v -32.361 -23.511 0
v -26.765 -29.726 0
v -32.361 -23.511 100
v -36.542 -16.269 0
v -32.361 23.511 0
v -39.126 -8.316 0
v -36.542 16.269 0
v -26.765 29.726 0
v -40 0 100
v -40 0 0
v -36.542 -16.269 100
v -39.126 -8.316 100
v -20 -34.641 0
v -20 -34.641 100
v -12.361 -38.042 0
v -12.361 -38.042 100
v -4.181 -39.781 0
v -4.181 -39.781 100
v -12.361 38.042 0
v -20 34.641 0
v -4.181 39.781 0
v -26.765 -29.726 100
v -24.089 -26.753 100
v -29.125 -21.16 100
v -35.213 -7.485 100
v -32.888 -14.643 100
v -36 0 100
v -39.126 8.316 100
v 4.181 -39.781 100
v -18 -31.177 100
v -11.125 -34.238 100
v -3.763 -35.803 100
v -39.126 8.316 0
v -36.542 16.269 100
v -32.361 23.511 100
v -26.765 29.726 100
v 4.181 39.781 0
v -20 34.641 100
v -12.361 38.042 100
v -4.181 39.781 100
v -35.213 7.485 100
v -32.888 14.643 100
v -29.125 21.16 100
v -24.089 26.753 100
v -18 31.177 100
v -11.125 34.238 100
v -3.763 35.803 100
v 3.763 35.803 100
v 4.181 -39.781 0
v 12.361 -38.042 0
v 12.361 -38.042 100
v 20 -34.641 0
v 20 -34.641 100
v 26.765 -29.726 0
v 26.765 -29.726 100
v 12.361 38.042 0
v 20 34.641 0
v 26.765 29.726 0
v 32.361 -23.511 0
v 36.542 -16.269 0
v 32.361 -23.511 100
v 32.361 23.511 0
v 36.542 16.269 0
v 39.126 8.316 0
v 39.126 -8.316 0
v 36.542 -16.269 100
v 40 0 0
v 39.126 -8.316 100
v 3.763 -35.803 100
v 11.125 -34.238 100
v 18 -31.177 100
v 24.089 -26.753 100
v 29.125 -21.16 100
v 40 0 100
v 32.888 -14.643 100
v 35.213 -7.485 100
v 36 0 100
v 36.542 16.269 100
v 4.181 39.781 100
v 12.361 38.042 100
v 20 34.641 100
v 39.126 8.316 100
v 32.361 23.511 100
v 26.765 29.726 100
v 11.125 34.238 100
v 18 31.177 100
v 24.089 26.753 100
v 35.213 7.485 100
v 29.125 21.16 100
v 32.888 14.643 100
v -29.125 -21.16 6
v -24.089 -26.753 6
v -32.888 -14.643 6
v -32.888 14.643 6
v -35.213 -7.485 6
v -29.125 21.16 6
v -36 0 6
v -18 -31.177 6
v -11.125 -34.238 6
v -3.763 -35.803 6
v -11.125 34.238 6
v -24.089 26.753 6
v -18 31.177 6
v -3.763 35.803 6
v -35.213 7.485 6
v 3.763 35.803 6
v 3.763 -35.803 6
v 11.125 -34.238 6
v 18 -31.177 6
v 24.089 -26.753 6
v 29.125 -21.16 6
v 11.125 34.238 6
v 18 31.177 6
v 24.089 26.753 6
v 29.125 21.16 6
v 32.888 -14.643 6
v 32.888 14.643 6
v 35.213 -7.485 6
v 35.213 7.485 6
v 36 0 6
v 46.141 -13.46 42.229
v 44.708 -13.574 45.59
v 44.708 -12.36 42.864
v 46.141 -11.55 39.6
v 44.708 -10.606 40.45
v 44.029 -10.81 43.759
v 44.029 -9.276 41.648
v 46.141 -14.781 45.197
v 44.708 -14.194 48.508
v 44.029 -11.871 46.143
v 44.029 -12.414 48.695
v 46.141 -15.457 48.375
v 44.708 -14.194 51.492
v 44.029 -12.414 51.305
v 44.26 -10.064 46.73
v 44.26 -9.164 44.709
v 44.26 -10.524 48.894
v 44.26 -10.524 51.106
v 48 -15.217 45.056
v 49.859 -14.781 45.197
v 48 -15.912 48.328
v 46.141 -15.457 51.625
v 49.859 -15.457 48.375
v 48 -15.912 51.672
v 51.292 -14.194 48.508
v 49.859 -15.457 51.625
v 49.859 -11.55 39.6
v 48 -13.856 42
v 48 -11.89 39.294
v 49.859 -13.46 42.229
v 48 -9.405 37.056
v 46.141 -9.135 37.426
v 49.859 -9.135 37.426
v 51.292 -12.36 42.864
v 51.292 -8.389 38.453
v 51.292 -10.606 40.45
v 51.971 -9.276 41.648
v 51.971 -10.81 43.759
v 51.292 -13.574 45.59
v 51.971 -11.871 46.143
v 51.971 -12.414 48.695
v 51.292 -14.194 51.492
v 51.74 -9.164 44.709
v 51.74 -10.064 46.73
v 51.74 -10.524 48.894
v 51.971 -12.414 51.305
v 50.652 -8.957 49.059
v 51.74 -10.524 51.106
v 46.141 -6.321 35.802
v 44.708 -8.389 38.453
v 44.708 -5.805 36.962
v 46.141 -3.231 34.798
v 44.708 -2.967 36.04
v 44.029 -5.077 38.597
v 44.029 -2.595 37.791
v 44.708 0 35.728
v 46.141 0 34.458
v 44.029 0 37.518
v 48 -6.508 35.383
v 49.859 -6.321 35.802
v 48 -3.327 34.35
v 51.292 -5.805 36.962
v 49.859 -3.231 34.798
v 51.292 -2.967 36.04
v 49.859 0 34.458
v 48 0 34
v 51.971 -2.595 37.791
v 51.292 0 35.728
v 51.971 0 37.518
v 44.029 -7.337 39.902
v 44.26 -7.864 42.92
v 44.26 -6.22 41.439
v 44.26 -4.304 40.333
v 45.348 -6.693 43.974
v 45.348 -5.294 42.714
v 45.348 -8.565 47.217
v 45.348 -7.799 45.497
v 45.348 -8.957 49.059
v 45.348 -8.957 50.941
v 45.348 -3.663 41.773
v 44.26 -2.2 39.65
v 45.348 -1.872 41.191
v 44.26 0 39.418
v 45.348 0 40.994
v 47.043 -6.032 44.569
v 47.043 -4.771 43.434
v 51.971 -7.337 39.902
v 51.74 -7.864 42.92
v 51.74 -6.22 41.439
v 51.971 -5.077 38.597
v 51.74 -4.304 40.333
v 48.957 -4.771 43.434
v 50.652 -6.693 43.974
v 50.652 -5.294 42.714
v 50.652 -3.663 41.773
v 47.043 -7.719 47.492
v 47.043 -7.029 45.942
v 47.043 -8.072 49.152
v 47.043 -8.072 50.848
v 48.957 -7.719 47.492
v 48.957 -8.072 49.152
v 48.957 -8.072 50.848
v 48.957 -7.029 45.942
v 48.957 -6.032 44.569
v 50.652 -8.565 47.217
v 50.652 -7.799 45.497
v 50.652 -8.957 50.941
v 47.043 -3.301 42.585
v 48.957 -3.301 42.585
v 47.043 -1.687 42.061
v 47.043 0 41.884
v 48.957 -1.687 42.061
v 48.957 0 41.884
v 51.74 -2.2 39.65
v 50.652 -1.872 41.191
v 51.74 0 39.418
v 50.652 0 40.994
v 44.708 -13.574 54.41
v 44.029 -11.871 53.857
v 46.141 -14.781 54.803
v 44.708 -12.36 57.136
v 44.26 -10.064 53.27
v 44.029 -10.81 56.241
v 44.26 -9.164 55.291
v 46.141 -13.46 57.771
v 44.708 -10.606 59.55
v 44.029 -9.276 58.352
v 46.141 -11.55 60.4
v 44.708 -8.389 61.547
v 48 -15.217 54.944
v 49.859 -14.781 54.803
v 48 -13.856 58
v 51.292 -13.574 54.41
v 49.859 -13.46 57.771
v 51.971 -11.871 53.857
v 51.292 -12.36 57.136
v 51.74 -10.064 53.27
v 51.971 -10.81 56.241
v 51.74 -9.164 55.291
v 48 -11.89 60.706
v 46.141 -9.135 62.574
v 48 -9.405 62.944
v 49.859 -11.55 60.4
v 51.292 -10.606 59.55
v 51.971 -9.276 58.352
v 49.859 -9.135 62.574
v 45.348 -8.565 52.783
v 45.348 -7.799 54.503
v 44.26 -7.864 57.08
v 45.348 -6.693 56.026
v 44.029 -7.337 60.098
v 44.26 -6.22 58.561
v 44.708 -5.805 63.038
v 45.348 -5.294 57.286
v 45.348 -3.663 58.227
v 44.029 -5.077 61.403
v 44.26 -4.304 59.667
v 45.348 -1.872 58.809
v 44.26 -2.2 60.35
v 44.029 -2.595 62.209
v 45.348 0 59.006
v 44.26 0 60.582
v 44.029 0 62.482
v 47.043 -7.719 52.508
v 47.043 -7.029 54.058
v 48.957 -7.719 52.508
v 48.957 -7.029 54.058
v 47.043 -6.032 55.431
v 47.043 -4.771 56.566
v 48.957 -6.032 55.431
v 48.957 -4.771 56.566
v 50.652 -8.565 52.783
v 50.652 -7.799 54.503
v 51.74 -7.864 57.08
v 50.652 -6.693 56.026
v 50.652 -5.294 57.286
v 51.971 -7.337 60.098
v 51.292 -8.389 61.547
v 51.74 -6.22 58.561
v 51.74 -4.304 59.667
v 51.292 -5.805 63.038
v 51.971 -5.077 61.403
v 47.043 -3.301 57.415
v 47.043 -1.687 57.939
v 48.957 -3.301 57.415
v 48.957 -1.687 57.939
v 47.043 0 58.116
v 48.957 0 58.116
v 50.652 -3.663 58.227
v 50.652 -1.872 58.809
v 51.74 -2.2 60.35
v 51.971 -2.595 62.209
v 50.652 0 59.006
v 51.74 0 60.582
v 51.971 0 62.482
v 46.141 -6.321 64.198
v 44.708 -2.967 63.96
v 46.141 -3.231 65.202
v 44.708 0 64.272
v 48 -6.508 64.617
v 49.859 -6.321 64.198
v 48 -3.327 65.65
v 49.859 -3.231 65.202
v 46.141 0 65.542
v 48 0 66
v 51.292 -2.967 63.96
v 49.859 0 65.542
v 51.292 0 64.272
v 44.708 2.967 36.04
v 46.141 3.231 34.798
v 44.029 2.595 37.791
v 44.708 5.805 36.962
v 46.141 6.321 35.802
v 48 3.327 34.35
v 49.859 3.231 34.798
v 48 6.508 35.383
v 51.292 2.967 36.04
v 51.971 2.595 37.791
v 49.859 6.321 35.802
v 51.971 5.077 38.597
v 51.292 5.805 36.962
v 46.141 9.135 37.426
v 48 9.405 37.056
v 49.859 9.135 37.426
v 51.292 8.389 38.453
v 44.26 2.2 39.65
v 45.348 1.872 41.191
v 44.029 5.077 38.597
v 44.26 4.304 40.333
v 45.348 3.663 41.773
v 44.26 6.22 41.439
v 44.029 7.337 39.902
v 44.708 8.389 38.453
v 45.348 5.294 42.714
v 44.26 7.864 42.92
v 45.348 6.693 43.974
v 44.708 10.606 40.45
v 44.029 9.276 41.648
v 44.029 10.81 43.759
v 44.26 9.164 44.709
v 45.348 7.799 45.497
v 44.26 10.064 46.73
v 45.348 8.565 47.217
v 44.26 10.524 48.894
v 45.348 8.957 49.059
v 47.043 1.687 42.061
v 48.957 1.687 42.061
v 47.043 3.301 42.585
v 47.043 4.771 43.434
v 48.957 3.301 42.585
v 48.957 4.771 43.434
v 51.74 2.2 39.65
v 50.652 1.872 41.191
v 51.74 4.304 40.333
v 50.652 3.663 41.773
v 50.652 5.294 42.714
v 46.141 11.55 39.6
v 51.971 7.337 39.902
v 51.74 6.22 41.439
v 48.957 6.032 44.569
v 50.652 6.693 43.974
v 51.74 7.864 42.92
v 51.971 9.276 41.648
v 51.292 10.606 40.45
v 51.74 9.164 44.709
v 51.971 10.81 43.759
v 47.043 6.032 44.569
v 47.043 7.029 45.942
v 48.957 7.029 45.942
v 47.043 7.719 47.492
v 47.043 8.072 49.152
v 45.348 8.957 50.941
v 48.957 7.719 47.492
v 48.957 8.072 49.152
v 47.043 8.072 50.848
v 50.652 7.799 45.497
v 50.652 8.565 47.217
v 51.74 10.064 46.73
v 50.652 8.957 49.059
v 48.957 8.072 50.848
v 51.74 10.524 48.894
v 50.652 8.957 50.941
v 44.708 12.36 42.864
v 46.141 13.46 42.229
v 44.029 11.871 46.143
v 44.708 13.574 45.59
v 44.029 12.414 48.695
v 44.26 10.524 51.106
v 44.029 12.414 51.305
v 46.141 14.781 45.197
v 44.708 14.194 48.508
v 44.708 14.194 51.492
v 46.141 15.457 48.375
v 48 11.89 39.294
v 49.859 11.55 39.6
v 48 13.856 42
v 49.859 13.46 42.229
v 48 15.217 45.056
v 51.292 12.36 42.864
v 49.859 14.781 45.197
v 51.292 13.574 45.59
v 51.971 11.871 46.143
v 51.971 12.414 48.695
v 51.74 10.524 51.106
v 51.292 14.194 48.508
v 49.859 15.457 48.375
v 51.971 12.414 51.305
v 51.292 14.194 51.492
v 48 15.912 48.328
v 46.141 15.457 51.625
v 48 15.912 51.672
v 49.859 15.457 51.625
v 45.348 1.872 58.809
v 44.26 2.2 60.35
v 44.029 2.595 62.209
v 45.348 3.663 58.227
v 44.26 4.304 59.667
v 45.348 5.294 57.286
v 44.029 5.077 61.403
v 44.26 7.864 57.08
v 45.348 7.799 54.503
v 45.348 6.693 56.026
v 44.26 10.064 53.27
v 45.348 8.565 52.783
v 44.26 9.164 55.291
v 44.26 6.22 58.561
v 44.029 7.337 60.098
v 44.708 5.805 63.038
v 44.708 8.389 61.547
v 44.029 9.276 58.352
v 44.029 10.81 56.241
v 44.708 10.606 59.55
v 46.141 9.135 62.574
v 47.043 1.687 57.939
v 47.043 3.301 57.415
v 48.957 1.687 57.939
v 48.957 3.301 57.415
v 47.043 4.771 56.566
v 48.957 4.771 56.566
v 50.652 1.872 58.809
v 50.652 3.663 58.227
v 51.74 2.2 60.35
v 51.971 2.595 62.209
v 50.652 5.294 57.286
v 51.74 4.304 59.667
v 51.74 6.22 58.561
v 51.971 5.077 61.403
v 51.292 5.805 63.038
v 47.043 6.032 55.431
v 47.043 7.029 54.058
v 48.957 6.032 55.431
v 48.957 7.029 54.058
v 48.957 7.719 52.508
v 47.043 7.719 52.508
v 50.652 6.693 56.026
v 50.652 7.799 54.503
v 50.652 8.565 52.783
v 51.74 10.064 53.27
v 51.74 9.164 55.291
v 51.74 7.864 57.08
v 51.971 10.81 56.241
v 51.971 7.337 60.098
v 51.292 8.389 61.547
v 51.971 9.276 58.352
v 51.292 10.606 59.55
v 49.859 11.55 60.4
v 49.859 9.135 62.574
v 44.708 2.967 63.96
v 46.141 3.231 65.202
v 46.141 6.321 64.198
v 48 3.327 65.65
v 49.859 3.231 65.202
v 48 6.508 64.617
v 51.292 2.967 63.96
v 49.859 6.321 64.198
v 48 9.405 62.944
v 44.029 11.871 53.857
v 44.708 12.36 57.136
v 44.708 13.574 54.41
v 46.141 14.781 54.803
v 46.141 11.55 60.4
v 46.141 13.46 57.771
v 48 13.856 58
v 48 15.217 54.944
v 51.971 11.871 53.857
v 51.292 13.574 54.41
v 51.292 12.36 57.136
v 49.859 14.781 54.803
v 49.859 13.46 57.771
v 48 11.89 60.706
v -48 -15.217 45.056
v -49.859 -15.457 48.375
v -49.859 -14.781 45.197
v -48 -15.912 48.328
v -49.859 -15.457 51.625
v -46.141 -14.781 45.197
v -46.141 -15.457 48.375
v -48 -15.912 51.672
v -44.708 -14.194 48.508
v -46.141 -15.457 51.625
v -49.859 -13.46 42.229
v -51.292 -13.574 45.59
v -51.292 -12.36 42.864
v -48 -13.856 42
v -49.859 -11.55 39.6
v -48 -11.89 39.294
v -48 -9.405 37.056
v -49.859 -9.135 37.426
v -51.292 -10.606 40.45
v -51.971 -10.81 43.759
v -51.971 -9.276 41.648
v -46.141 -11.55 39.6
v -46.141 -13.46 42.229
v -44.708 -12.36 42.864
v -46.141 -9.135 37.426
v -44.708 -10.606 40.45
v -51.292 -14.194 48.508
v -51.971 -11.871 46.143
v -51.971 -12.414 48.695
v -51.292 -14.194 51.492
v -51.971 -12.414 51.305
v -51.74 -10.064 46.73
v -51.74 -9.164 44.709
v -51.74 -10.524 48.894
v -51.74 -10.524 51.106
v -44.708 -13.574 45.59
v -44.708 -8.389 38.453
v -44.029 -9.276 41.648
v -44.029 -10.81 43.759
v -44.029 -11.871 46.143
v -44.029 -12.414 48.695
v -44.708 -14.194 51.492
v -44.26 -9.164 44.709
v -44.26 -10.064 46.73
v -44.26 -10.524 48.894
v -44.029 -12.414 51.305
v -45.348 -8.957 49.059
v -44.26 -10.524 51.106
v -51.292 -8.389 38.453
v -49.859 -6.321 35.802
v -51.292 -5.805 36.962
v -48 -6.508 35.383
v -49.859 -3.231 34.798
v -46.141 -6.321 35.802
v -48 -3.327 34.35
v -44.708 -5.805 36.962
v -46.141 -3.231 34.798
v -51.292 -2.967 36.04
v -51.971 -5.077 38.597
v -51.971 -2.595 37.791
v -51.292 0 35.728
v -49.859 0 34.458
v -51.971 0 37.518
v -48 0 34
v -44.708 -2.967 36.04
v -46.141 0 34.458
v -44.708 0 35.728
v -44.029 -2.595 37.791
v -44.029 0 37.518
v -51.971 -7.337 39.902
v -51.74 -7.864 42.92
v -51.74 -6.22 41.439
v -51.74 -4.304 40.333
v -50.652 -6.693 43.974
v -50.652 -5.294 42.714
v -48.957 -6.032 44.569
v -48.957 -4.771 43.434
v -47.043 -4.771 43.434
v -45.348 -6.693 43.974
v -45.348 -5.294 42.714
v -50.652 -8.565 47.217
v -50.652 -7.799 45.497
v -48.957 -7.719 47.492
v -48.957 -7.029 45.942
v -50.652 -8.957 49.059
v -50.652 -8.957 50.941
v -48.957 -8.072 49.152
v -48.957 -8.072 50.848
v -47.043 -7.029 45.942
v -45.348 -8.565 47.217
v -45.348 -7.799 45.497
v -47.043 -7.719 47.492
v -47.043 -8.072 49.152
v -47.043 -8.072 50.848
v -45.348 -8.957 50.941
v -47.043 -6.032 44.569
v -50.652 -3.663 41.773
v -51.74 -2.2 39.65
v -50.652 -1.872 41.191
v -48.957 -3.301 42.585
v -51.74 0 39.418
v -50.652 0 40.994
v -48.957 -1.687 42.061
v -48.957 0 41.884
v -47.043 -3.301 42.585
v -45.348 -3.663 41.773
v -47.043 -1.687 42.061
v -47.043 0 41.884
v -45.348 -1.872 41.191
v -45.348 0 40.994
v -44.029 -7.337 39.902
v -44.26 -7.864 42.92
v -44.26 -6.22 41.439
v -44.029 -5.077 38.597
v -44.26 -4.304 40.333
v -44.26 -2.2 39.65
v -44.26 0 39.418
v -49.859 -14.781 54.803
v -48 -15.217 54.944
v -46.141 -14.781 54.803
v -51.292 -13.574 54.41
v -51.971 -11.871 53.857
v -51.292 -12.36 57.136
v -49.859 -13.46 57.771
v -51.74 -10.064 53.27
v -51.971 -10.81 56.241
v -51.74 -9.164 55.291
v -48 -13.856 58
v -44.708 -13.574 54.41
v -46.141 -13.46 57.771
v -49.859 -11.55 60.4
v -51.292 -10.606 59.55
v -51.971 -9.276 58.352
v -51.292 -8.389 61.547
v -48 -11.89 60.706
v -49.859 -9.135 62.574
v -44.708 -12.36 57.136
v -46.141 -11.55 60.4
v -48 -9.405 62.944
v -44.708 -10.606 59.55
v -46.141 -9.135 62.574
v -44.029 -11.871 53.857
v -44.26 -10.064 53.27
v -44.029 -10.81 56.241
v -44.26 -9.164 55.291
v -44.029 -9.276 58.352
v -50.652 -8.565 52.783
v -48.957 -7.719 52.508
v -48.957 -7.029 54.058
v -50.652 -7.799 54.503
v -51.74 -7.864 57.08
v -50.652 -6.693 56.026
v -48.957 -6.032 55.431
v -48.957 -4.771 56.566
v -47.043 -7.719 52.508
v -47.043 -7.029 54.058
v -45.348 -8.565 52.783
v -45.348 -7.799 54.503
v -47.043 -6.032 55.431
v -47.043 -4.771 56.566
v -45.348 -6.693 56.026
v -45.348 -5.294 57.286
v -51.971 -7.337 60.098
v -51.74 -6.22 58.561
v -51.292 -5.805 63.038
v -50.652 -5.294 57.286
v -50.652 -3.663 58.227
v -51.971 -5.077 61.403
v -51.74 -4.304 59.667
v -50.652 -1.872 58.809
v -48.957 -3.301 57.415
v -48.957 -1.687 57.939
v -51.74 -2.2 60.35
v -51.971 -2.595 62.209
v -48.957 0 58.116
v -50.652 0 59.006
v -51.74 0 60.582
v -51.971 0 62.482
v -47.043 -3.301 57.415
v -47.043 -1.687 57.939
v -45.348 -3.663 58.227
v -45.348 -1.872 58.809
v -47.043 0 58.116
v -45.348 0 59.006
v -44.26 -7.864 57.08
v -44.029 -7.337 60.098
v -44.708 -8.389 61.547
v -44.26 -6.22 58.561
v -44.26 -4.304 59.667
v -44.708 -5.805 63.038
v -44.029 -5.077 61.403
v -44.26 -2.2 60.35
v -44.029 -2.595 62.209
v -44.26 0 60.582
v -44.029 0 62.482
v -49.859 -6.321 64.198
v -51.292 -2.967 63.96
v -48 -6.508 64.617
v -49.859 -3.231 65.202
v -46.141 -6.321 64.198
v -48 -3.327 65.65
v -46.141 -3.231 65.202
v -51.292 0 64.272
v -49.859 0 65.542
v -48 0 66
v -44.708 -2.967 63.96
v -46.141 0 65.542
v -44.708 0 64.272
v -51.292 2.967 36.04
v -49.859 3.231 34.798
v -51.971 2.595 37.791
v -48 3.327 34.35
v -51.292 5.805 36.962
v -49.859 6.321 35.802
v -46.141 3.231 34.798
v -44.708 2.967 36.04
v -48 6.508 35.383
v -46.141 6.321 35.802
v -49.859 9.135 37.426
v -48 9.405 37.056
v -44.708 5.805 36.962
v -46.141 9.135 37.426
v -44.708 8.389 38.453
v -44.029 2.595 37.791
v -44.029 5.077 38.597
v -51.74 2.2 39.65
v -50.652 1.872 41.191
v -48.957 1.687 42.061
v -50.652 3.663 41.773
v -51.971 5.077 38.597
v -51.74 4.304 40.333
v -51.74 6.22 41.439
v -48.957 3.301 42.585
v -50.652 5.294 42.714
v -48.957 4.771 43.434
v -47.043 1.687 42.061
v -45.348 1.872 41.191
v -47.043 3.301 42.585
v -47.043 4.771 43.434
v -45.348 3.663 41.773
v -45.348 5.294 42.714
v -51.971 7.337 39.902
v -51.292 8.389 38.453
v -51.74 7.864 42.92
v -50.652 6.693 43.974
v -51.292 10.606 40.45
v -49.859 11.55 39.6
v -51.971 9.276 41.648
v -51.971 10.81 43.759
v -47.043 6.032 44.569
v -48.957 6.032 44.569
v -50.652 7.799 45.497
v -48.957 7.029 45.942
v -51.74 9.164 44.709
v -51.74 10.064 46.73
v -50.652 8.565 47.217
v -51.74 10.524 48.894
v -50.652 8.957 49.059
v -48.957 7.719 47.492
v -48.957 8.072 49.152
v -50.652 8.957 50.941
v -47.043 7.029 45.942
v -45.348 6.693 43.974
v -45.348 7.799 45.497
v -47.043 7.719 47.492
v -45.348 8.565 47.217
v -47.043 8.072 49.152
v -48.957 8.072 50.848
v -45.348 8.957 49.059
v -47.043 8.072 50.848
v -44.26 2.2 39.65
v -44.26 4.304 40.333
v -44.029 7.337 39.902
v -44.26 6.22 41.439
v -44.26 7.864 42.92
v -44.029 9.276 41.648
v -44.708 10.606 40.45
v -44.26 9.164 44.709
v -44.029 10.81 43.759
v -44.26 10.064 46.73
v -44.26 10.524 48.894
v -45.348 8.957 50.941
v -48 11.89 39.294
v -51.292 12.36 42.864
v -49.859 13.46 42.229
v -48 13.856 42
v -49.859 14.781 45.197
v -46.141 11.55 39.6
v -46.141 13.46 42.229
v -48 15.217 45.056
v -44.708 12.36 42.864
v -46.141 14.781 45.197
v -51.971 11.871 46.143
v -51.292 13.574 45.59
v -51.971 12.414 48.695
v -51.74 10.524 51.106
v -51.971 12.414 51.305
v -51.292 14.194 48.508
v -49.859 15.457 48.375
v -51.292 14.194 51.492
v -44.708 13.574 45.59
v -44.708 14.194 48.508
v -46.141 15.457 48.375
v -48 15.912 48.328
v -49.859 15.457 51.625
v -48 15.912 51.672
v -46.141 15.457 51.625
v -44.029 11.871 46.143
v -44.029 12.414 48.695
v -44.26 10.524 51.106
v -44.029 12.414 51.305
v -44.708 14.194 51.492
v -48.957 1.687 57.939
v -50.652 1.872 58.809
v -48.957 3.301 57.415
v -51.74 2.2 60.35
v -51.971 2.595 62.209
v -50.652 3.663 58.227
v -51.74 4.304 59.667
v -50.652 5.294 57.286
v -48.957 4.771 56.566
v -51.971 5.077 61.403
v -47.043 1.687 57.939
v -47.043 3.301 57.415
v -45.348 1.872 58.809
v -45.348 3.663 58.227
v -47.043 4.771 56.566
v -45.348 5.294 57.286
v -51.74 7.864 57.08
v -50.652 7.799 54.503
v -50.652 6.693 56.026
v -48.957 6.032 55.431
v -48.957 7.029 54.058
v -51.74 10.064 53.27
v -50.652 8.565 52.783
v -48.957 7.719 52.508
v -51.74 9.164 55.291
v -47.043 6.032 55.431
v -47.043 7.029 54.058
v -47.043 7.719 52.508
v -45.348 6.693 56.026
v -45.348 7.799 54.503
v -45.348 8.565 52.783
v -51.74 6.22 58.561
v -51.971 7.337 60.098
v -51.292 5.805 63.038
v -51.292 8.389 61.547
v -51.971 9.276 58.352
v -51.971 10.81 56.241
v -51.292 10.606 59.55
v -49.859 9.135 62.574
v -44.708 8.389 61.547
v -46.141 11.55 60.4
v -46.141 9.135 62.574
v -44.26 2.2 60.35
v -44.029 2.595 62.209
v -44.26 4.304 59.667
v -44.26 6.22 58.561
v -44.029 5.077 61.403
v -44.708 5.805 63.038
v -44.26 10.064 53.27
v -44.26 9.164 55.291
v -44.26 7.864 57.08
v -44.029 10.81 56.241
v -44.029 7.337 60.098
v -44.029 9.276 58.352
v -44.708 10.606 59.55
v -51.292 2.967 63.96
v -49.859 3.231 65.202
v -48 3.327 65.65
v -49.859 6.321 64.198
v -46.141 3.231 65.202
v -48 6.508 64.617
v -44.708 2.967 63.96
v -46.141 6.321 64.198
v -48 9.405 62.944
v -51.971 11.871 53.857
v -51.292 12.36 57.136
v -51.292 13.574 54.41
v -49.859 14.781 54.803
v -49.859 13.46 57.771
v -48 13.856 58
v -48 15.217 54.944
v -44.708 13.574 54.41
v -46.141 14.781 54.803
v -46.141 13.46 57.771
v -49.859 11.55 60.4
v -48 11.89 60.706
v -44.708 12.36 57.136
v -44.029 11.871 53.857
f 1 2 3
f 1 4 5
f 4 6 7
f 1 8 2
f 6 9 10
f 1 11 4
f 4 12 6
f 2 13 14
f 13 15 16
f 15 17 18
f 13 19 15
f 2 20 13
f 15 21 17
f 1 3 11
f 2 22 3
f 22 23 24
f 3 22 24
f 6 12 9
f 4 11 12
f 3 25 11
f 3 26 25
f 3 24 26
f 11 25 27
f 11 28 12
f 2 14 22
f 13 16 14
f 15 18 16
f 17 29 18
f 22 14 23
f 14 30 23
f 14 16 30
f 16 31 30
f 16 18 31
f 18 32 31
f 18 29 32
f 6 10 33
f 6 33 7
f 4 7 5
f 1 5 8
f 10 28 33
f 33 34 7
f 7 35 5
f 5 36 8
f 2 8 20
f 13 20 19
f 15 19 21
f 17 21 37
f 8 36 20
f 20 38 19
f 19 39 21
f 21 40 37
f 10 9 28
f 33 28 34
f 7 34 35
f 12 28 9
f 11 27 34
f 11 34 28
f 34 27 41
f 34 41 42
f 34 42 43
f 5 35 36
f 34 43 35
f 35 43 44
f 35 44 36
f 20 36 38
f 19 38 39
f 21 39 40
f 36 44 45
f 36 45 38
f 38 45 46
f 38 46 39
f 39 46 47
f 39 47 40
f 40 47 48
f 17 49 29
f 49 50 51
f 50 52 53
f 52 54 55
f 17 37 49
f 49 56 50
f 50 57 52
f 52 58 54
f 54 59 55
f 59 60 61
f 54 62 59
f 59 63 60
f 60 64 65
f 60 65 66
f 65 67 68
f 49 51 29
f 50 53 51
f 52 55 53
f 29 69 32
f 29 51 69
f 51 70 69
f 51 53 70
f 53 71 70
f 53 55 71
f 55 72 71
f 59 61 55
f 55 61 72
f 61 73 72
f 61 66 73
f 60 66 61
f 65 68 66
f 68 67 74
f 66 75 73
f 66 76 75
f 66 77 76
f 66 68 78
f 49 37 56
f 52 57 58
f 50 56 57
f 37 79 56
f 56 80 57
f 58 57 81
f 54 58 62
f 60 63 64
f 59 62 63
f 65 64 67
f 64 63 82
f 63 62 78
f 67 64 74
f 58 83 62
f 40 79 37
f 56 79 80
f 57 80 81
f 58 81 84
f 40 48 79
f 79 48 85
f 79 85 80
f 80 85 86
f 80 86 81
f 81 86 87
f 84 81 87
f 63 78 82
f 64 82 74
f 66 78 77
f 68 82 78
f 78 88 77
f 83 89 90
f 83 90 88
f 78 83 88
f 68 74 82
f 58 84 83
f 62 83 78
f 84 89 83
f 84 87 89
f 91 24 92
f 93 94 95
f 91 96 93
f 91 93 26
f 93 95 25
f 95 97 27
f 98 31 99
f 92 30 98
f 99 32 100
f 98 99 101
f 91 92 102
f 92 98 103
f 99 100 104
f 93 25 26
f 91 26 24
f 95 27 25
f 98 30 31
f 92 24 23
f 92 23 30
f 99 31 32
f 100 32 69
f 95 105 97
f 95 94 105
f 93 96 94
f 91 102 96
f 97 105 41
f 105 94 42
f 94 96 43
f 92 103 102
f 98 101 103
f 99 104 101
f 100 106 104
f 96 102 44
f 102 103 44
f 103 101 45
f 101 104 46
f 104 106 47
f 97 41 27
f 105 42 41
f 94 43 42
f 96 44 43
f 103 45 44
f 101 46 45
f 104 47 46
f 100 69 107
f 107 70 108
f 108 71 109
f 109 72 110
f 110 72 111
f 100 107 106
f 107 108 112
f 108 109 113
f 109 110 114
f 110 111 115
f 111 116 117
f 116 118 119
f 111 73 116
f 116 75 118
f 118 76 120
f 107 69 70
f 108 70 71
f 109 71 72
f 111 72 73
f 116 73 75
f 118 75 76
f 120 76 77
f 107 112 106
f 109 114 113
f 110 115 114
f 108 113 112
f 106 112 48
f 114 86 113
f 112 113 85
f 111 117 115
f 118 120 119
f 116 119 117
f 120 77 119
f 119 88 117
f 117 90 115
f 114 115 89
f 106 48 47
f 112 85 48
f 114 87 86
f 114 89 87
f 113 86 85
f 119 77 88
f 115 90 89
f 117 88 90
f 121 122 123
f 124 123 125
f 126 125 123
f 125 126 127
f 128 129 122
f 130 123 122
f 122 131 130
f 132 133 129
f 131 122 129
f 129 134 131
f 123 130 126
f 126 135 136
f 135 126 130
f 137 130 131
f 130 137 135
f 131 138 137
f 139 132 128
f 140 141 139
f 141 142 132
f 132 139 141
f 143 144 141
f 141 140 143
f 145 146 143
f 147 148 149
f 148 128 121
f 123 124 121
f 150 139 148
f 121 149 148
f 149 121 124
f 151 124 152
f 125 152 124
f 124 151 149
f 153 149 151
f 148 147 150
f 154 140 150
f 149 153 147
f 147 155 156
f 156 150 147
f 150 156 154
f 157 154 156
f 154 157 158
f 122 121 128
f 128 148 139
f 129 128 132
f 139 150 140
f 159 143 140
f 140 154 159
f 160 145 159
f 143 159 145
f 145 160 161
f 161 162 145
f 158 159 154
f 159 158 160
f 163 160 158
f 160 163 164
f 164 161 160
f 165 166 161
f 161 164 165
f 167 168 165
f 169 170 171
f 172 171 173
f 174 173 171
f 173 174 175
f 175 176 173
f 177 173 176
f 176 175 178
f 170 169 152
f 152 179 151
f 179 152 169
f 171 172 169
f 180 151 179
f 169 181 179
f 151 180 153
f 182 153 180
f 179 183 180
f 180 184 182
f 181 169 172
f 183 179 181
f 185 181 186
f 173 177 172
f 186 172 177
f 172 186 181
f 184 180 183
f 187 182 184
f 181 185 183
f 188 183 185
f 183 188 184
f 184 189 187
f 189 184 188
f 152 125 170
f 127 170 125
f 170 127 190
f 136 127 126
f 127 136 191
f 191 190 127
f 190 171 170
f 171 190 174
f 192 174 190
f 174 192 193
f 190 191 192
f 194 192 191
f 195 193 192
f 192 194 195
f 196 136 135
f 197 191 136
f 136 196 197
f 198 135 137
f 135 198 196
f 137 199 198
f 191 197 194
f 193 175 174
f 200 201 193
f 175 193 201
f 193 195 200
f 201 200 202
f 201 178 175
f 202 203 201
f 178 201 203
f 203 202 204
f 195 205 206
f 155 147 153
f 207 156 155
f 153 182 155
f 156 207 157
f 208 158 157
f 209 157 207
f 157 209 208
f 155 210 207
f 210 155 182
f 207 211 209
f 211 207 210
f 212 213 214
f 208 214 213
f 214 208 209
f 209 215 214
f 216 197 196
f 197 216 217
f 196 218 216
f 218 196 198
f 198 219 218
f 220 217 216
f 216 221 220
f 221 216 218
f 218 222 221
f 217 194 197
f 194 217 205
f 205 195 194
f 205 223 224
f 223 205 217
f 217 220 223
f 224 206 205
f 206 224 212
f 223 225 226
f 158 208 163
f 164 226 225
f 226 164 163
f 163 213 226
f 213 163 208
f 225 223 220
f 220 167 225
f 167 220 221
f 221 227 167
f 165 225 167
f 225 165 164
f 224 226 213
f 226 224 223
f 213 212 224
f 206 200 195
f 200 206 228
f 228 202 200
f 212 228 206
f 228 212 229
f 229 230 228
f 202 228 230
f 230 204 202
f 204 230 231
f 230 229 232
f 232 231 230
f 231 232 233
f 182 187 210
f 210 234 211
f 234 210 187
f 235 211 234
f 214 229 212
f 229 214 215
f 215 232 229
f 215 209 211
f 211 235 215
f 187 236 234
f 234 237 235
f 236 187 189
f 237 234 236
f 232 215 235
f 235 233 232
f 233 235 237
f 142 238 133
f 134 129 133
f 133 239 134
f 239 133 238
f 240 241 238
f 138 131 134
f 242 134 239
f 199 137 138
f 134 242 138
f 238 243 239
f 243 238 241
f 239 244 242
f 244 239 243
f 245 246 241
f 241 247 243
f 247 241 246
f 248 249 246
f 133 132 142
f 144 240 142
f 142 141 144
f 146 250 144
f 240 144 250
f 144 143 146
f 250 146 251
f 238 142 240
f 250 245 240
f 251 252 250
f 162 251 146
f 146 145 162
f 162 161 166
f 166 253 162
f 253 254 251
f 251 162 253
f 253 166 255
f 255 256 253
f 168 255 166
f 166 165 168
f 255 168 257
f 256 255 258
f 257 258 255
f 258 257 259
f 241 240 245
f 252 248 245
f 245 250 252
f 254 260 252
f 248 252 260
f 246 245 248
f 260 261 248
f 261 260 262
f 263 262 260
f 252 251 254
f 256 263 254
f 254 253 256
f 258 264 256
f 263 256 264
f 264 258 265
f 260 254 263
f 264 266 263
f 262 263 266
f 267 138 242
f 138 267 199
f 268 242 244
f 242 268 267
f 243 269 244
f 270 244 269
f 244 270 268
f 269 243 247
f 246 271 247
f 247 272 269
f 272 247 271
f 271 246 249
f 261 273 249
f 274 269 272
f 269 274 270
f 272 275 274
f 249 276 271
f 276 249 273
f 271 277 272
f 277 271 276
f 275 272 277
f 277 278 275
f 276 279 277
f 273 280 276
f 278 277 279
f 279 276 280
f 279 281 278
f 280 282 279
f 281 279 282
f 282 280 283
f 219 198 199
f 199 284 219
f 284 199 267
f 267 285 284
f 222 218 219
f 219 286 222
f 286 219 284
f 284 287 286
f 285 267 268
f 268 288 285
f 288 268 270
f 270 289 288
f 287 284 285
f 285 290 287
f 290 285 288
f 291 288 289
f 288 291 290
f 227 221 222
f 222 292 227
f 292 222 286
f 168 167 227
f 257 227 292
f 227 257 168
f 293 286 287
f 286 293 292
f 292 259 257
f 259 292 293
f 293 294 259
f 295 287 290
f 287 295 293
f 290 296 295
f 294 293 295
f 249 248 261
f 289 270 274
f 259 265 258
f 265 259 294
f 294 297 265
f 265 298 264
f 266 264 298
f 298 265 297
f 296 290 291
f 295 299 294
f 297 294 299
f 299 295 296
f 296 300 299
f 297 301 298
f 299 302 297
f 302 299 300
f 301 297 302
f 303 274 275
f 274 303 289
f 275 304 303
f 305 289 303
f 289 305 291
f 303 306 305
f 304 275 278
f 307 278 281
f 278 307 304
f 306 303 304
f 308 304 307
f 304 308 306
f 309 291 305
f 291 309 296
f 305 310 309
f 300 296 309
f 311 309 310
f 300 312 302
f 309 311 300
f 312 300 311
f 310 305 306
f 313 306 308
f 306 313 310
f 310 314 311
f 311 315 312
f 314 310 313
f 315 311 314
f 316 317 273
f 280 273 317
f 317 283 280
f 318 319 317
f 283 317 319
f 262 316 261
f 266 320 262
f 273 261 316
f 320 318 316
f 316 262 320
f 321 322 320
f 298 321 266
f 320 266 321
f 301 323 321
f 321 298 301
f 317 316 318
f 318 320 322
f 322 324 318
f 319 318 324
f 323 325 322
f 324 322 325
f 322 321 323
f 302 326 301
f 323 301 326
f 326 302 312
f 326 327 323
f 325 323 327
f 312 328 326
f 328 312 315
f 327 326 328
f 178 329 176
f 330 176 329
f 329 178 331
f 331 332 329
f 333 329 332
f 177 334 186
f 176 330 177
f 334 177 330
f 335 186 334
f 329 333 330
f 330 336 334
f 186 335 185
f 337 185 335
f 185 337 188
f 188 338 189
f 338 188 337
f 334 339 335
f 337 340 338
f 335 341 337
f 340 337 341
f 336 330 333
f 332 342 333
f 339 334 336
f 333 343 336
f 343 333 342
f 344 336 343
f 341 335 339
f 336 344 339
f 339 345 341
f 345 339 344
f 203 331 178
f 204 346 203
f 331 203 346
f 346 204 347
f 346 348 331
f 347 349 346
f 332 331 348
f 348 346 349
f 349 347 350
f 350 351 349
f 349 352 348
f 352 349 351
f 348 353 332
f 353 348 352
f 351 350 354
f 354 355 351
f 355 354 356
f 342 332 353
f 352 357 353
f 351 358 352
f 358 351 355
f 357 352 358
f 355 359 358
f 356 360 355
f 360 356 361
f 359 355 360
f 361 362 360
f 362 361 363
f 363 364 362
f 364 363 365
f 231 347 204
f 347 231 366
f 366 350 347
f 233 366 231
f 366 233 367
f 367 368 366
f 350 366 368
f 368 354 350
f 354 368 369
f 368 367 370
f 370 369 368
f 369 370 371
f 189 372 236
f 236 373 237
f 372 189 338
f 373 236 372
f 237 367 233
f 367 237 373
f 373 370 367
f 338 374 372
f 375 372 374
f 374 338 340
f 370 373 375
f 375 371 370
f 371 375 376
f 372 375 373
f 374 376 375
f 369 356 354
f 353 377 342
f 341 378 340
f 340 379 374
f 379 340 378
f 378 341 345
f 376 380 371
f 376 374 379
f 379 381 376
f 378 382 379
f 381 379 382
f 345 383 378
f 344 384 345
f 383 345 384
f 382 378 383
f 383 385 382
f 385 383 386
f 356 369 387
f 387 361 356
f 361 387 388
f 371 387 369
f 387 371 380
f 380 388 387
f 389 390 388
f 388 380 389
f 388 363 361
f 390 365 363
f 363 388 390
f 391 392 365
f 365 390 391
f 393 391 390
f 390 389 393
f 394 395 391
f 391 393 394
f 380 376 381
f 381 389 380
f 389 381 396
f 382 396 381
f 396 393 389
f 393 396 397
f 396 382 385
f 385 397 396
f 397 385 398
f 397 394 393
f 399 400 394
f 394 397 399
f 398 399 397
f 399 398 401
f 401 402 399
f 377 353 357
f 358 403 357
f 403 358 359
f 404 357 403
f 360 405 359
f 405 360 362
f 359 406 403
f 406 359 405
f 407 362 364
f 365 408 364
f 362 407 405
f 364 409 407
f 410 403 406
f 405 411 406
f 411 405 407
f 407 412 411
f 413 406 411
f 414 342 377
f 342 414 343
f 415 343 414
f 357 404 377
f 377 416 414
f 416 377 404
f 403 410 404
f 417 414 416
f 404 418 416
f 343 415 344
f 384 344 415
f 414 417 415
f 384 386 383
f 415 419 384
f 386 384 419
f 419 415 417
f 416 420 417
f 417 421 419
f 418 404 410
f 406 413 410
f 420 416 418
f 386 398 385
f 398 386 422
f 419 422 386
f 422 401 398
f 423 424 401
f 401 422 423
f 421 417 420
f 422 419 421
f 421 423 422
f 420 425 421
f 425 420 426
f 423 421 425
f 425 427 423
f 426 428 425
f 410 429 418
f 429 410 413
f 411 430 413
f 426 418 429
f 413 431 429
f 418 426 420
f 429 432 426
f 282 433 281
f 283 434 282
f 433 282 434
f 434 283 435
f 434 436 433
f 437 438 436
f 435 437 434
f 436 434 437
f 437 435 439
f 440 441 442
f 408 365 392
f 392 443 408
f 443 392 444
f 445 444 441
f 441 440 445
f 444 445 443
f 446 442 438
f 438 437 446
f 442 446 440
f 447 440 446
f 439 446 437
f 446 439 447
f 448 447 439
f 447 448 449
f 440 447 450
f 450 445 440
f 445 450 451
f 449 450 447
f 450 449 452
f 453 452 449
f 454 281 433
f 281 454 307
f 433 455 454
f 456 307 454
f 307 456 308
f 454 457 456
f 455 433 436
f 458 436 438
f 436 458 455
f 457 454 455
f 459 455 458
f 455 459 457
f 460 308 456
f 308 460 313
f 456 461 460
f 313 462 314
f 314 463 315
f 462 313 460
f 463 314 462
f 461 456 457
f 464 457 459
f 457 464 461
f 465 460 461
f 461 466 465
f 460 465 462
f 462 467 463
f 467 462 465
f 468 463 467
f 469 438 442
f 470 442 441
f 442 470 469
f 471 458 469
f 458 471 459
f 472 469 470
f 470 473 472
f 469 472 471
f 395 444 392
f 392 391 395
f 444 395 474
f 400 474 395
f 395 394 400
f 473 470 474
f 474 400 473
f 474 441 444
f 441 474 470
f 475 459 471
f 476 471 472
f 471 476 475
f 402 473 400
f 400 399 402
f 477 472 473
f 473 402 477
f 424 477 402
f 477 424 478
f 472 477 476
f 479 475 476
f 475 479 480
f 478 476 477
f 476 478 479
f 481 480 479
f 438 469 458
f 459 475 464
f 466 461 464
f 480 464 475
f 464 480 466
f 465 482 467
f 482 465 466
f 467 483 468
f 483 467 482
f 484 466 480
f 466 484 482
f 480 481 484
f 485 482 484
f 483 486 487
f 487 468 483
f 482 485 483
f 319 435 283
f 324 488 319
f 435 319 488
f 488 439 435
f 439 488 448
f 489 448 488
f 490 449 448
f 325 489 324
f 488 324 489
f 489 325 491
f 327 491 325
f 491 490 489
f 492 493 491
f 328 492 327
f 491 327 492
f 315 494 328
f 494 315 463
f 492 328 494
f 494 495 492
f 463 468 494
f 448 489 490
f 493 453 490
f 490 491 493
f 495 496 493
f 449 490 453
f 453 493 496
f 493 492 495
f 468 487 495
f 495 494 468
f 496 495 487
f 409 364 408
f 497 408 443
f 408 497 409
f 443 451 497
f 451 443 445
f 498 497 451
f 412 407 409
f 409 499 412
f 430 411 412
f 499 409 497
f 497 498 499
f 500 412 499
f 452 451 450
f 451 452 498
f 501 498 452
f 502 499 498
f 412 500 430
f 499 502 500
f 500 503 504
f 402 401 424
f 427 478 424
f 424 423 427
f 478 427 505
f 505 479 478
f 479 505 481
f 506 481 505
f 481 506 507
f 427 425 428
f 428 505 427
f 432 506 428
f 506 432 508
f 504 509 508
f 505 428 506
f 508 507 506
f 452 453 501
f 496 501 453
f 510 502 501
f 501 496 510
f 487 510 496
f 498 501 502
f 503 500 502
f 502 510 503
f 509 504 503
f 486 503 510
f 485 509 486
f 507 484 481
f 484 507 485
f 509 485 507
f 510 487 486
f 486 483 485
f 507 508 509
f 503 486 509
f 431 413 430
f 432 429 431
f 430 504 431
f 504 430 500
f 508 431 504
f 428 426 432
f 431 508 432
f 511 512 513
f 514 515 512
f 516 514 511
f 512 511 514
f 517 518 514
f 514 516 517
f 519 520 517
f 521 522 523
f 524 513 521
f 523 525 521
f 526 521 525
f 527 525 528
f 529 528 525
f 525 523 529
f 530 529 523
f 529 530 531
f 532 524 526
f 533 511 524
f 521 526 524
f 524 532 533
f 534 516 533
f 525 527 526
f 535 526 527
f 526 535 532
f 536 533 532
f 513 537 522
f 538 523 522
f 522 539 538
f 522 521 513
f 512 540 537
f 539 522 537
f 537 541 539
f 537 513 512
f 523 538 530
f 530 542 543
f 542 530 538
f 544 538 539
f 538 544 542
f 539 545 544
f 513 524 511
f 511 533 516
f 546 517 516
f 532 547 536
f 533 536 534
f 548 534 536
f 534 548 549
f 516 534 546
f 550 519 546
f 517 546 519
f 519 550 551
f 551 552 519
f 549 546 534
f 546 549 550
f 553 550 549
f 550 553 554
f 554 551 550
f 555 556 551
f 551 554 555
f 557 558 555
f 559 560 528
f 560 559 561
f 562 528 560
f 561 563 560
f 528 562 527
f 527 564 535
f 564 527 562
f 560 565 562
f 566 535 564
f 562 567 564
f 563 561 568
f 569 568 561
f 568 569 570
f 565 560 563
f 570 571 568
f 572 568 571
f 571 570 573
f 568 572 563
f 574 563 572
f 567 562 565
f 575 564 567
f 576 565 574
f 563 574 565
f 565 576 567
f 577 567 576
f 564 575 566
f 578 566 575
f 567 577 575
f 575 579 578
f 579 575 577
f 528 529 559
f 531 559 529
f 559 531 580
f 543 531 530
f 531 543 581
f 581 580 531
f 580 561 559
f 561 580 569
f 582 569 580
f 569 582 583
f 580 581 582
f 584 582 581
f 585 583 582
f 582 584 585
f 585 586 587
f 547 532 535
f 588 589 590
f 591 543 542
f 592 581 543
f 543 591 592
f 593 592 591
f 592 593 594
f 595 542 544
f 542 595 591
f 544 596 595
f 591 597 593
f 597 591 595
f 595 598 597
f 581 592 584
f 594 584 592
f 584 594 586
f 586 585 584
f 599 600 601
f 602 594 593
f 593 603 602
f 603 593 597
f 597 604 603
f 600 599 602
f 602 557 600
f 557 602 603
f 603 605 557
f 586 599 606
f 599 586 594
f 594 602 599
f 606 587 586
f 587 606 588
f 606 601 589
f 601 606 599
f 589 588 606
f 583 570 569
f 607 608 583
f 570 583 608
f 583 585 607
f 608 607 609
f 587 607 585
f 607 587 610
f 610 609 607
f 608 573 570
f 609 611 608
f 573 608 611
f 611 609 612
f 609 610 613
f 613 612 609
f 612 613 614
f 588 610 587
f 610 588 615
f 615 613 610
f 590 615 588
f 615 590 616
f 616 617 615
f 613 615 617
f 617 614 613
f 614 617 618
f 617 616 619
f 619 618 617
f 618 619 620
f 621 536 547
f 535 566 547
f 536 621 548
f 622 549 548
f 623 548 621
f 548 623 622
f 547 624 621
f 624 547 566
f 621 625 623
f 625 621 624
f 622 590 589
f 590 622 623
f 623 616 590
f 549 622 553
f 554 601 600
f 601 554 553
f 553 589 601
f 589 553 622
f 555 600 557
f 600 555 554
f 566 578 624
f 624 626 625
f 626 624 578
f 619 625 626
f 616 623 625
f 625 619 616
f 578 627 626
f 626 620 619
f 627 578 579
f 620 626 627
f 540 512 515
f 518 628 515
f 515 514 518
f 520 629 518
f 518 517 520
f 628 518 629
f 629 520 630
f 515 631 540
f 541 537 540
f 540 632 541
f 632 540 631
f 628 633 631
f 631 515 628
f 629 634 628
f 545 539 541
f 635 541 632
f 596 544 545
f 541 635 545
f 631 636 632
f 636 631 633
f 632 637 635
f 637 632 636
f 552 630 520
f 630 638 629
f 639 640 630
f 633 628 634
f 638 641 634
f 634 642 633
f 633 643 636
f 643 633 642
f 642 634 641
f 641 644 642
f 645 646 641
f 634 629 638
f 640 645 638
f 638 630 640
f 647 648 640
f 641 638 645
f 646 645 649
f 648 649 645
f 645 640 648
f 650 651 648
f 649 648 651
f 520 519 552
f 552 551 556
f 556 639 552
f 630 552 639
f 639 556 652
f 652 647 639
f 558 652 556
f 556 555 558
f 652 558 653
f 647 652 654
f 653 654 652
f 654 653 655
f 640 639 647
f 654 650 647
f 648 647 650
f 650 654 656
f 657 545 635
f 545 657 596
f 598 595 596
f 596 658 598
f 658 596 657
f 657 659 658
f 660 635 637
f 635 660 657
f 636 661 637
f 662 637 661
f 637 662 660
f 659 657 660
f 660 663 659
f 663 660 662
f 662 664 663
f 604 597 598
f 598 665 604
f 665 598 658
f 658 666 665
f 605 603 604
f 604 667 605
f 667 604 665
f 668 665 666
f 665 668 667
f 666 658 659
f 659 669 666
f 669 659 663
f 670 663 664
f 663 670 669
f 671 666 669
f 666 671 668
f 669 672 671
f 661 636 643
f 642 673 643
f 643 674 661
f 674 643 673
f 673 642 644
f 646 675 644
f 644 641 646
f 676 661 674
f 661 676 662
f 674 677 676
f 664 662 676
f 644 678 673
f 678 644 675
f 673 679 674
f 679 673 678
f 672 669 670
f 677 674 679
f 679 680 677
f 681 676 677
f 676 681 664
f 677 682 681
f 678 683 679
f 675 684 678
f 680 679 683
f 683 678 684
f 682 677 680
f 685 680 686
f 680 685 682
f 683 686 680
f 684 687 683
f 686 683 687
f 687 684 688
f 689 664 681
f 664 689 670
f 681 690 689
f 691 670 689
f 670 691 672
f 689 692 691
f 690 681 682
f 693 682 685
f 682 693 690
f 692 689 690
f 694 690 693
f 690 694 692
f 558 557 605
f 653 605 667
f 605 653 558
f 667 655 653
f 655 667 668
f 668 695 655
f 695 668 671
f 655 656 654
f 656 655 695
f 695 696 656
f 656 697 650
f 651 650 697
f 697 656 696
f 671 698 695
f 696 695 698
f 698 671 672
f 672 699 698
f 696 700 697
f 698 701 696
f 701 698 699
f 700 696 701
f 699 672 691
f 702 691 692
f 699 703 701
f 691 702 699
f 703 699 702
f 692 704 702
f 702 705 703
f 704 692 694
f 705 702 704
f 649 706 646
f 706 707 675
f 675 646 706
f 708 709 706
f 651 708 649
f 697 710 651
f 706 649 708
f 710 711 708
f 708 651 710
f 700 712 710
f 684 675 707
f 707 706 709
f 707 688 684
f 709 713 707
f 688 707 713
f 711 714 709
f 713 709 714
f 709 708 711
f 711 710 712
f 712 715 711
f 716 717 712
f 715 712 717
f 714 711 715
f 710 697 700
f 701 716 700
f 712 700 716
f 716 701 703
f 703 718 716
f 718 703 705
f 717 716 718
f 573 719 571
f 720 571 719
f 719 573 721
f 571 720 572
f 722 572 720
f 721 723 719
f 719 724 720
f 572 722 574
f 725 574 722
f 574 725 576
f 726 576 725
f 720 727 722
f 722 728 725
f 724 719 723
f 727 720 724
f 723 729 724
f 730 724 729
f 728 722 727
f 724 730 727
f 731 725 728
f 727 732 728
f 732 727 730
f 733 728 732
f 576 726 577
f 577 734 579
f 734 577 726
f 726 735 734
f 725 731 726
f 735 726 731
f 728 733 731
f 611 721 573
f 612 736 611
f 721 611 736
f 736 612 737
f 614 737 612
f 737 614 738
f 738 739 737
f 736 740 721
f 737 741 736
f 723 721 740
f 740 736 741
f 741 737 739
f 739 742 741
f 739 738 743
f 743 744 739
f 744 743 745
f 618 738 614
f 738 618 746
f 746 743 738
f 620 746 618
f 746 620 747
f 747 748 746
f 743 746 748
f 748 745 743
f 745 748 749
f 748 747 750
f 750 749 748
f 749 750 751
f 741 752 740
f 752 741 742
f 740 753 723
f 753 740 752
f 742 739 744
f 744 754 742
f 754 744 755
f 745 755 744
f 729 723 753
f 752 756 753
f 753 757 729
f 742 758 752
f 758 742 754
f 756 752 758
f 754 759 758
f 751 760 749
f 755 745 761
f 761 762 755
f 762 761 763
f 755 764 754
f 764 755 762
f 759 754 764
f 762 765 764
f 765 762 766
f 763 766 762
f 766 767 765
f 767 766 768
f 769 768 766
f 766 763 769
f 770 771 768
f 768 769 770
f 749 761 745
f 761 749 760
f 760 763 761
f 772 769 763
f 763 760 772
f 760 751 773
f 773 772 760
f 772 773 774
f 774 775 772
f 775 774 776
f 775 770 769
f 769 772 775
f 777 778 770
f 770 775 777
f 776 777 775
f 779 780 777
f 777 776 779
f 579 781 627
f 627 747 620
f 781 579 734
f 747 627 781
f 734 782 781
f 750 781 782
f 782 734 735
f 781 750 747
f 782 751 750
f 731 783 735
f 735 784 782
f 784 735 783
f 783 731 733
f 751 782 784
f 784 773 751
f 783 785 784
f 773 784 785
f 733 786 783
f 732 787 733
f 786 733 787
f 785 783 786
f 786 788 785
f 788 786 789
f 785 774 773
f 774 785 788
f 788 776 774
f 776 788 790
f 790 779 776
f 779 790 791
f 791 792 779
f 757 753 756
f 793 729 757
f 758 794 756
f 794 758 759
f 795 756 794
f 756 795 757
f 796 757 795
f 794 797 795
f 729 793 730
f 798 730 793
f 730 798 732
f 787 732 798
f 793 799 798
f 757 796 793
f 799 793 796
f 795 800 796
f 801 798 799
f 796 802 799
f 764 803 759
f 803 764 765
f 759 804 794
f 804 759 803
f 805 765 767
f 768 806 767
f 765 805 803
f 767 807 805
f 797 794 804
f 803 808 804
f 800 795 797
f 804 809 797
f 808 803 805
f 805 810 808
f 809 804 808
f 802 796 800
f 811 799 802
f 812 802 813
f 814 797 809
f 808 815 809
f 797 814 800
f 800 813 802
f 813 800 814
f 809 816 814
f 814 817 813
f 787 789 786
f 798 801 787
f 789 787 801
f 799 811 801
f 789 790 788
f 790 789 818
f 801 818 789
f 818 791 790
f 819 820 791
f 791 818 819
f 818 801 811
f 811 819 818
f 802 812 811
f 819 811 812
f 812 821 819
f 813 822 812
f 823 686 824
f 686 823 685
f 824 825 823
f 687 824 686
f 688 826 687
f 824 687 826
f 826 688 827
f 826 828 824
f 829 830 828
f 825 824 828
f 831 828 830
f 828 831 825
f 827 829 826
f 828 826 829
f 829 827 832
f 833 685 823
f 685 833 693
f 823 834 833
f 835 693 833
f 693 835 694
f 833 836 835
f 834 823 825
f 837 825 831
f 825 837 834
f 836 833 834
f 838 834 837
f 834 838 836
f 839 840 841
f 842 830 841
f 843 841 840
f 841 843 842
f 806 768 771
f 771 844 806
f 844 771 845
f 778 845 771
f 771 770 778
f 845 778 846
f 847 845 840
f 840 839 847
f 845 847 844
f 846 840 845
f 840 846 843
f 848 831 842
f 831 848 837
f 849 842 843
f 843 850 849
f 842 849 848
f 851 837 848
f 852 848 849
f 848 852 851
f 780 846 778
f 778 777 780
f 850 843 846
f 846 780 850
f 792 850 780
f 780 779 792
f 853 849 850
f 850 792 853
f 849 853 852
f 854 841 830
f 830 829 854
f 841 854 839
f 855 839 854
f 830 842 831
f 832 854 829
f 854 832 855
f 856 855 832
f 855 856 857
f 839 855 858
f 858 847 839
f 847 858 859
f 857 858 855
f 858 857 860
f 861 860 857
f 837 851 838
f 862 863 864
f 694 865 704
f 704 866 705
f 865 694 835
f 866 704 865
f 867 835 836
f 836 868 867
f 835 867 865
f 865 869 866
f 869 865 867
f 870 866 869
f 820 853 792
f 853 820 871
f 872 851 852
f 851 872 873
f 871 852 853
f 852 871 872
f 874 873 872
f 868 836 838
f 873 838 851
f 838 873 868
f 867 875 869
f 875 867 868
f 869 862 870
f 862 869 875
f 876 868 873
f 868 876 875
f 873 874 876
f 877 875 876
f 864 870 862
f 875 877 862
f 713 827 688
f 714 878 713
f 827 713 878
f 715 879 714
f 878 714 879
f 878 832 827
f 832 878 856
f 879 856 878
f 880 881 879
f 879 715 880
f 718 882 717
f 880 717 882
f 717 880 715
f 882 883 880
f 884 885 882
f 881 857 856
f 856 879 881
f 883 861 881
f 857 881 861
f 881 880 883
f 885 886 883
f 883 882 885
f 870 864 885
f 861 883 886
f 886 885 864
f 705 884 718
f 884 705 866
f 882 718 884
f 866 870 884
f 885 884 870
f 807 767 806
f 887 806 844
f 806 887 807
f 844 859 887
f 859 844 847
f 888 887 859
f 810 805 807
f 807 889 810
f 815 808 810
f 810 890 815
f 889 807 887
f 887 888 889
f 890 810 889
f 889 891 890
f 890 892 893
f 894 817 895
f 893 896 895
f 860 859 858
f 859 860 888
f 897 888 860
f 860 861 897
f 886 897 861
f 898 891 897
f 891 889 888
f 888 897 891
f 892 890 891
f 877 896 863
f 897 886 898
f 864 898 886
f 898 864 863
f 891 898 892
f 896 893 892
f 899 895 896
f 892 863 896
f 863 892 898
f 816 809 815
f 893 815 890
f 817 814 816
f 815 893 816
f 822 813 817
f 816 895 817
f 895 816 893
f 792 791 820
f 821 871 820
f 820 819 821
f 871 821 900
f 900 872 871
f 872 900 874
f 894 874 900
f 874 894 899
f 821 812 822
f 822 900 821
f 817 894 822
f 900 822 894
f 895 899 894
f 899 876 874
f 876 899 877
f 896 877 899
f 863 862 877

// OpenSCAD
// マグカップのパラメータ
outer_diameter = 80;
height = 100;
wall_thickness = 4;
bottom_thickness = 6;
handle_radius = 12;

// 内径
inner_diameter = outer_diameter - 2 * wall_thickness;

// モジュール：マグカップ本体
module mug() {
  difference() {
    cylinder(h = height, r = outer_diameter / 2);
    translate([0, 0, bottom_thickness]) cylinder(h = height - bottom_thickness, r = inner_diameter / 2);
  }
}

// モジュール：取手
module handle() {
  rotate_extrude() {
    translate([handle_radius, 0]) circle(r = wall_thickness);
  }
}

// メイン処理
union() {
  mug();
  translate([outer_diameter / 2 + handle_radius - wall_thickness, 0, height/2]) rotate([0,90,0]) handle();
  translate([-outer_diameter / 2 - handle_radius + wall_thickness, 0, height/2]) rotate([0,90,0]) handle();
}
